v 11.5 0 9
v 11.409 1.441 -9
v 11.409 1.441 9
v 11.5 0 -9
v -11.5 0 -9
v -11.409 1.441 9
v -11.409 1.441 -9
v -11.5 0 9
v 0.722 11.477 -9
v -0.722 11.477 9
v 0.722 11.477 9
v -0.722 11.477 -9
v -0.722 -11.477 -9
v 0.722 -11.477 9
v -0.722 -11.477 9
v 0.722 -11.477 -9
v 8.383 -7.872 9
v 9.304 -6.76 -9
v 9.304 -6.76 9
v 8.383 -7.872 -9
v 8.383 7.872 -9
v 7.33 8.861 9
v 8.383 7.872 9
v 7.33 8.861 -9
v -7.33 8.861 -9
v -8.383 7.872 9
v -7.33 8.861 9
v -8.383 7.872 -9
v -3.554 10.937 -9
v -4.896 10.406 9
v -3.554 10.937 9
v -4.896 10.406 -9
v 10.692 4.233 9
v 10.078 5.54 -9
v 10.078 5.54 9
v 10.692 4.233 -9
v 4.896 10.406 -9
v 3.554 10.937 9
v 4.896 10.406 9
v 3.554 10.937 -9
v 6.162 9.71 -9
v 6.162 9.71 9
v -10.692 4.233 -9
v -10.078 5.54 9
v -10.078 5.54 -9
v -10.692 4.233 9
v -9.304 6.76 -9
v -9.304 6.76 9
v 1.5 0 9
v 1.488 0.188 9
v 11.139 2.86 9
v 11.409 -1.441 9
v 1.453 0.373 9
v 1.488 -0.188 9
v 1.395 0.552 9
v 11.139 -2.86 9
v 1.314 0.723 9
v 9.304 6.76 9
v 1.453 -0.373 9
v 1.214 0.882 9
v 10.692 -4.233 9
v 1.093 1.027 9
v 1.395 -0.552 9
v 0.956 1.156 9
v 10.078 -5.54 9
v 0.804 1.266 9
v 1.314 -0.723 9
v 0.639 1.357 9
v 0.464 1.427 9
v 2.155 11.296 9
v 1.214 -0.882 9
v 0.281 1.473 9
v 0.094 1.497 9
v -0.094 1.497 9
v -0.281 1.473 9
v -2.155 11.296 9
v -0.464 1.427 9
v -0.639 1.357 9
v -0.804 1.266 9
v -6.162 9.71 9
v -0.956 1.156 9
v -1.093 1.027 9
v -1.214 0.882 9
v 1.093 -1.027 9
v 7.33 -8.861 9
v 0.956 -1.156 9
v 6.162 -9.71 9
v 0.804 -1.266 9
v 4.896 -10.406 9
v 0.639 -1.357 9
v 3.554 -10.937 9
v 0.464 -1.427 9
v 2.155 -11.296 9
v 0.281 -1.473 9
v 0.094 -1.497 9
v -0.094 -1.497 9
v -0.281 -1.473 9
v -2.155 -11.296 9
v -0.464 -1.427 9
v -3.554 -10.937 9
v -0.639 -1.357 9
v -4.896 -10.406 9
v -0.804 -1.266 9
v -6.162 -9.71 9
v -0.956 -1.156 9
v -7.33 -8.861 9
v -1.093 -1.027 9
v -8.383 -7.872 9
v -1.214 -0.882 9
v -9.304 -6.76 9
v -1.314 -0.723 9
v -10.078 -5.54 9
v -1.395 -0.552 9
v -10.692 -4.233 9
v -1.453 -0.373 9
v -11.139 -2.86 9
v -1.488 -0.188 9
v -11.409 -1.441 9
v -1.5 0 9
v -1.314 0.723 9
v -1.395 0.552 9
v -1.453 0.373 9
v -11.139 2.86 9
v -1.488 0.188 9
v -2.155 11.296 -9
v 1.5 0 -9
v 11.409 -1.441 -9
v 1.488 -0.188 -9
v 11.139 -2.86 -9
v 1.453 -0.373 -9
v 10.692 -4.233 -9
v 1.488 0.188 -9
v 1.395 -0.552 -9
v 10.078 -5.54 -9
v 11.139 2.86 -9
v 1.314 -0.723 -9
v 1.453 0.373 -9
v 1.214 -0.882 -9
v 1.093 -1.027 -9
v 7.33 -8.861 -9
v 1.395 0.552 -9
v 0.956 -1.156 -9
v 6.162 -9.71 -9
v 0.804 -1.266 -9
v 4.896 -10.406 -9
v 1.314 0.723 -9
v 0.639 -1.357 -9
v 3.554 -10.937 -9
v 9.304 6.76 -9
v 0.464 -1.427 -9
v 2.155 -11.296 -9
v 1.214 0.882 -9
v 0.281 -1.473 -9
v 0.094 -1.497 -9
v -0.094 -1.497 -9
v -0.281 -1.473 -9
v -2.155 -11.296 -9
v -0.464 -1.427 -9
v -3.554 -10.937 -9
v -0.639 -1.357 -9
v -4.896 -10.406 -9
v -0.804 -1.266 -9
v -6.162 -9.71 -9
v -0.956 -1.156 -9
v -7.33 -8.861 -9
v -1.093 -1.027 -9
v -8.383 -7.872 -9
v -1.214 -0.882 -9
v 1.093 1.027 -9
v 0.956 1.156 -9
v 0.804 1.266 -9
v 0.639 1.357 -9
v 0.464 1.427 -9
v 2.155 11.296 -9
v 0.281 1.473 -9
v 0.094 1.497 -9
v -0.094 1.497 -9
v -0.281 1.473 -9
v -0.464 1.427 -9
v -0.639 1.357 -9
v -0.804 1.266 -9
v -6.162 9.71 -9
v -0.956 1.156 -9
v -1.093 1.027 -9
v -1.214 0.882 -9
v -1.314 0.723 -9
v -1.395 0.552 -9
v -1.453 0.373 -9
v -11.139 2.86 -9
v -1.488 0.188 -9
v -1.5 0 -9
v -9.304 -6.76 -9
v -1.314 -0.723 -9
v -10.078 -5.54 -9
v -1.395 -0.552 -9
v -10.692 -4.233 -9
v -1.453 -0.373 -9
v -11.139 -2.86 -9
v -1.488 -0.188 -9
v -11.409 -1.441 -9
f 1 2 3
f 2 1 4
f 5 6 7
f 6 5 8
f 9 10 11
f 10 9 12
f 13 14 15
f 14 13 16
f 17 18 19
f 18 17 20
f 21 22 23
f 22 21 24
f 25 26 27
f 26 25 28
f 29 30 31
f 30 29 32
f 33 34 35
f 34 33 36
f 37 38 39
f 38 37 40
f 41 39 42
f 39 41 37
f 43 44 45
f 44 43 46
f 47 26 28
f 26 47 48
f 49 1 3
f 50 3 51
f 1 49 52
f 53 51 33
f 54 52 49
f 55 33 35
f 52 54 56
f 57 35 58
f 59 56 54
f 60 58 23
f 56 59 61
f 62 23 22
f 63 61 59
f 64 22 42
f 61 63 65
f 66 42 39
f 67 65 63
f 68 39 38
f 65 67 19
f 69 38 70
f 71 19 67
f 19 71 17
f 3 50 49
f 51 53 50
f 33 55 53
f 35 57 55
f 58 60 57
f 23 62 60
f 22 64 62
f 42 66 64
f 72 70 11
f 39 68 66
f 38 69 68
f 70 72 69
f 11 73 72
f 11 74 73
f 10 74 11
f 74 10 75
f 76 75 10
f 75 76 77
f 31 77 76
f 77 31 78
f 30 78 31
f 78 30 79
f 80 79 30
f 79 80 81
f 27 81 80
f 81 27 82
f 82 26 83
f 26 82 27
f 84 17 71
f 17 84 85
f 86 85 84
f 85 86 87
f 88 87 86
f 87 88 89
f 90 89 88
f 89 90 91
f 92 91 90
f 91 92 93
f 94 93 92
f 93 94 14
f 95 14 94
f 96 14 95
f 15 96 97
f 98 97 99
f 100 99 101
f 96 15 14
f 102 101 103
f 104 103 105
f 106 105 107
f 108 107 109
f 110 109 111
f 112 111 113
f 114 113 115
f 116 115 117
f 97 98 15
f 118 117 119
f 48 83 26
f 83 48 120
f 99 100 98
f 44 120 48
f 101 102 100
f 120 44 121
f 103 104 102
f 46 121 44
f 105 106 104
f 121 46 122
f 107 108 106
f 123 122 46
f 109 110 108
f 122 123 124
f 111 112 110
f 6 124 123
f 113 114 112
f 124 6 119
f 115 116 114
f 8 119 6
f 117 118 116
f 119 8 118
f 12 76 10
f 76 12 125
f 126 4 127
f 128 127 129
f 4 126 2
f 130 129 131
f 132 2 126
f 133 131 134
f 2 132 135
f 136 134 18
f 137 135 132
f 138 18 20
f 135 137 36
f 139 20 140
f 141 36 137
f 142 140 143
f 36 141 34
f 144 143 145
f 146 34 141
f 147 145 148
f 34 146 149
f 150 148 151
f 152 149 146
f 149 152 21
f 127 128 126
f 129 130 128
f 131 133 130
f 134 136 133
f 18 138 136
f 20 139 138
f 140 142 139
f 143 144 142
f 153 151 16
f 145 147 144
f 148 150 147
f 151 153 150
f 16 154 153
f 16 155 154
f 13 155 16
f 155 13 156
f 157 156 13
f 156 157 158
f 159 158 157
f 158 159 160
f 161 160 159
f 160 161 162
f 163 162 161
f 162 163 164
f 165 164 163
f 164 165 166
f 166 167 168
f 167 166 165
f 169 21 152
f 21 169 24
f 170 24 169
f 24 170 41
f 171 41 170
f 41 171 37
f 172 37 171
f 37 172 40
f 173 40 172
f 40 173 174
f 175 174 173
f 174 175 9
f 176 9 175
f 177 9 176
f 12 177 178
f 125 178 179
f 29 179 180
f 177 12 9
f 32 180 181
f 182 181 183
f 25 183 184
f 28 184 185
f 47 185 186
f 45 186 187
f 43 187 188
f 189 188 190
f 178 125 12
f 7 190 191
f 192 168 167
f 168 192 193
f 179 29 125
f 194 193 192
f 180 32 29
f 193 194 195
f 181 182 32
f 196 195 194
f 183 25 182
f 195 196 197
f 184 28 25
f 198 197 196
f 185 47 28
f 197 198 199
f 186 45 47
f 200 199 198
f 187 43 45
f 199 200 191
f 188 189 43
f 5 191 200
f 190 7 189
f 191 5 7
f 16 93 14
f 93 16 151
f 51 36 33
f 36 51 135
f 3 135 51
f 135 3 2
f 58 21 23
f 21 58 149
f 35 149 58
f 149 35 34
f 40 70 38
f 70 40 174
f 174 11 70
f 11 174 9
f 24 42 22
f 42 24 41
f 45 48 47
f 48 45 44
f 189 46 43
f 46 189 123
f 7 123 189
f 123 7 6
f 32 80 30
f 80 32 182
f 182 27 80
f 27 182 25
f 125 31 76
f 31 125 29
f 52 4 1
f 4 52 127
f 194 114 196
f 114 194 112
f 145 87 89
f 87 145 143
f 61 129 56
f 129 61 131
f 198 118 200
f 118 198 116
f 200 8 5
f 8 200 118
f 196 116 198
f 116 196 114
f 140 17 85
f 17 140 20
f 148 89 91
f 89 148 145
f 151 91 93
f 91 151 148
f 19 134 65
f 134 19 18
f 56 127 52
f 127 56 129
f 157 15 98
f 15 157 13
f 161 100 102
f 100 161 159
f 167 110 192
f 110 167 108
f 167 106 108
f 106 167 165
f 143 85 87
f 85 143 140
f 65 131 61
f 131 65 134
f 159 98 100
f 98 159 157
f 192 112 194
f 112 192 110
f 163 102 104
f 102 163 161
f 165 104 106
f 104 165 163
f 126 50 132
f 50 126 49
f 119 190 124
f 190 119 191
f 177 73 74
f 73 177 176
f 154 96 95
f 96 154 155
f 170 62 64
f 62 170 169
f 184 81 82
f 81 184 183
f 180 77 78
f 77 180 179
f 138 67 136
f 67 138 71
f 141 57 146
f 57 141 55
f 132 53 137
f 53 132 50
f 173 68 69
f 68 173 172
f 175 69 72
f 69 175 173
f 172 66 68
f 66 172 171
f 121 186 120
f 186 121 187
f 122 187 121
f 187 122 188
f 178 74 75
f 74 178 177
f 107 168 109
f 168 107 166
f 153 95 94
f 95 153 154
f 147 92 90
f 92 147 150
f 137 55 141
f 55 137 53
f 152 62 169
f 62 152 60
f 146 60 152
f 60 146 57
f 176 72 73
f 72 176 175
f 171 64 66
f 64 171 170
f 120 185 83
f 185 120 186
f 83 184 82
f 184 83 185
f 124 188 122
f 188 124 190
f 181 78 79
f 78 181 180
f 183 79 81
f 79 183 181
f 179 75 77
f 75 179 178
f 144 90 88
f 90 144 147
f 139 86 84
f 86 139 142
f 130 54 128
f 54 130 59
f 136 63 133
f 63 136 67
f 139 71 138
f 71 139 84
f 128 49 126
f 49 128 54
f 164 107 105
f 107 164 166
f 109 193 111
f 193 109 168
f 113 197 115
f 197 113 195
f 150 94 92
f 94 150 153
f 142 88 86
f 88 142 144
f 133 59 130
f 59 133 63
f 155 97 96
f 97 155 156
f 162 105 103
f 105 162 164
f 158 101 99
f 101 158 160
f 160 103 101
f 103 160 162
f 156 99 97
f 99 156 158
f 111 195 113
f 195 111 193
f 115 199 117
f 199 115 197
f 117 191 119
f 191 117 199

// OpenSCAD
$fn = 50;


difference() {
	union() {
		translate(v = [0, 0, -9.0000000000]) {
			cylinder(h = 18, r = 11.5000000000);
		}
	}
	union() {
		translate(v = [0, 0, -100.0000000000]) {
			cylinder(h = 200, r = 1.5000000000);
		}
	}
}
